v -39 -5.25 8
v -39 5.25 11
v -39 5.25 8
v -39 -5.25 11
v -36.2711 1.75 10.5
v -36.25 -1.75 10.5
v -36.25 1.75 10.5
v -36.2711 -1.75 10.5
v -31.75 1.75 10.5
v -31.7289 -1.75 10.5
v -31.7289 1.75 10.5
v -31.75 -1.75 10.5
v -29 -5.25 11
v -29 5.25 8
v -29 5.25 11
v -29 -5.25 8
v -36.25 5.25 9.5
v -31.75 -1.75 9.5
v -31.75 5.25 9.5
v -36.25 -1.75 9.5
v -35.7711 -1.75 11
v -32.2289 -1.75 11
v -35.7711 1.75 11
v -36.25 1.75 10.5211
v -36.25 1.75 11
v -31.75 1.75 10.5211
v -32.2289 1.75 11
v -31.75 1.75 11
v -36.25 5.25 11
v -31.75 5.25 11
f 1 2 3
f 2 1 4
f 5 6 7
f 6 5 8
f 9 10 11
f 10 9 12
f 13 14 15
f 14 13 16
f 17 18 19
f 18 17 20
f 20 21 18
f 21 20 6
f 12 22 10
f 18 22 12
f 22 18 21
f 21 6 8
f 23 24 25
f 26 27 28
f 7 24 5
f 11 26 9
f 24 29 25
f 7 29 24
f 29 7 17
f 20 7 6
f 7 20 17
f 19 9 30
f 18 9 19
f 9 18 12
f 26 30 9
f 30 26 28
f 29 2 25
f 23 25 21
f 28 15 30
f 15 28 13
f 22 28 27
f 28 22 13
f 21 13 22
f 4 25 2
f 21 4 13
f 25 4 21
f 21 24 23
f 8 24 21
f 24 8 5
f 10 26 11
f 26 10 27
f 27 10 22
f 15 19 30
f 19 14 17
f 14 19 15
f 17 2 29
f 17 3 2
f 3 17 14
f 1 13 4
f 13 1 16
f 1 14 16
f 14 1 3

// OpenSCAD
//Tob hall effect sensor box

difference(){
translate([-34,0,10]) cube([10,3.5,1], center = true);

translate([-34,0,10]) cube([4+0.5,4,1], center = true);  
}    

difference(){
translate([-34,0,10+0.5+0.25]) cube([10,3.5,0.5], center = true);

translate([-34,0,5.4+0.3]) rotate([0,45,0]) cube([10,4,10], center = true);  
}  


translate([-34,-3.5,10+0.25]) cube([10,3.5,1.5], center = true);

difference(){
translate([-34,3.5,10+0.25]) cube([10,3.5,1.5], center = true);

translate([-34,0,10+0.25]) cube([4+0.5,15,1.5], center = true); 

}


translate([-34,0,10-1.25]) cube([10,10.5,1.5], center = true);
